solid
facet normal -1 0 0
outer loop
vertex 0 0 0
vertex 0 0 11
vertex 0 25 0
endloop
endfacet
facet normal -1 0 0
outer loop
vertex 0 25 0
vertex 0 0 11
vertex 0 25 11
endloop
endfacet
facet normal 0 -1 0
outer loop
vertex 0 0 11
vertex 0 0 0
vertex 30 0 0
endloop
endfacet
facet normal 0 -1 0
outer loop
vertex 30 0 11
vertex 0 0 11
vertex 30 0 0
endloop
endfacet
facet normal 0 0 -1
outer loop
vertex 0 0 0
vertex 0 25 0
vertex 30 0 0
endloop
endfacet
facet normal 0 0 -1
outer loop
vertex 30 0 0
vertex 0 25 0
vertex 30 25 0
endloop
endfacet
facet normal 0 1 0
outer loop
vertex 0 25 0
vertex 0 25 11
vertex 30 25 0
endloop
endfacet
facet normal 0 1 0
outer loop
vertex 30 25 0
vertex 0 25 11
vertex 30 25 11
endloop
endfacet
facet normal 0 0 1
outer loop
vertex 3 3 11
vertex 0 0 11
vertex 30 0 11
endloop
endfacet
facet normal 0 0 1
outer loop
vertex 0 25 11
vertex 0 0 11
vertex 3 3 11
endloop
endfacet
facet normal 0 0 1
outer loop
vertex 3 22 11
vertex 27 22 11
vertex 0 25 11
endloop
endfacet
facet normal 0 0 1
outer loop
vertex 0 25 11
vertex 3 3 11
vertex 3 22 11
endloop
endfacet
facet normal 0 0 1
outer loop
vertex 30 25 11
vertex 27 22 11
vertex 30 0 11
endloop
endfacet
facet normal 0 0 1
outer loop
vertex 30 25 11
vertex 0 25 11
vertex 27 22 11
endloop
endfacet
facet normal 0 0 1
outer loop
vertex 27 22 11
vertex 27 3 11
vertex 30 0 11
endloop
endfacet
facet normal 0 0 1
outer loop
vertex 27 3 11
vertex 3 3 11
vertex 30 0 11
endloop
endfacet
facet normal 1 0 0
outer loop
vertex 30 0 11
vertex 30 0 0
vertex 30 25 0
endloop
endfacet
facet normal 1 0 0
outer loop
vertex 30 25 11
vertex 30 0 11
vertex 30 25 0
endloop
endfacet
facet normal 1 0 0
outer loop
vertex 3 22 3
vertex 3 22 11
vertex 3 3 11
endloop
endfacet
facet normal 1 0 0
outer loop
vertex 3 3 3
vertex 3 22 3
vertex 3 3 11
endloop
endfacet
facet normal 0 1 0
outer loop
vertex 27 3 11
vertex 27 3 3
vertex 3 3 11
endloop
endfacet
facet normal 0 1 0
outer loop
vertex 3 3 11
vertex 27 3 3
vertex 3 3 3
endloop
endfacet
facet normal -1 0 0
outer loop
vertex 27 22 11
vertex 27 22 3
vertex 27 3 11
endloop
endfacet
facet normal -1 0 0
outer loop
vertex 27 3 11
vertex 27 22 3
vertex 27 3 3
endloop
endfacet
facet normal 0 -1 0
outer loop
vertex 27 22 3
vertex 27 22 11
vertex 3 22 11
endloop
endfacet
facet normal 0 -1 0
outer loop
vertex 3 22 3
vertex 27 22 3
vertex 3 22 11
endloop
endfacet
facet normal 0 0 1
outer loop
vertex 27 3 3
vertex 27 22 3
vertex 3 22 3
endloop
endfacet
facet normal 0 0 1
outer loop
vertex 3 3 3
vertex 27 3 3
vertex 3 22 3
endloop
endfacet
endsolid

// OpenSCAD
laenge = 24;
breite = 19;
hoehe = 8;
rand = 3;

difference(){
	cube([laenge+2*rand,breite+2*rand,hoehe+rand]);
	translate([rand, rand, rand]) cube([laenge, breite, hoehe]);
}
